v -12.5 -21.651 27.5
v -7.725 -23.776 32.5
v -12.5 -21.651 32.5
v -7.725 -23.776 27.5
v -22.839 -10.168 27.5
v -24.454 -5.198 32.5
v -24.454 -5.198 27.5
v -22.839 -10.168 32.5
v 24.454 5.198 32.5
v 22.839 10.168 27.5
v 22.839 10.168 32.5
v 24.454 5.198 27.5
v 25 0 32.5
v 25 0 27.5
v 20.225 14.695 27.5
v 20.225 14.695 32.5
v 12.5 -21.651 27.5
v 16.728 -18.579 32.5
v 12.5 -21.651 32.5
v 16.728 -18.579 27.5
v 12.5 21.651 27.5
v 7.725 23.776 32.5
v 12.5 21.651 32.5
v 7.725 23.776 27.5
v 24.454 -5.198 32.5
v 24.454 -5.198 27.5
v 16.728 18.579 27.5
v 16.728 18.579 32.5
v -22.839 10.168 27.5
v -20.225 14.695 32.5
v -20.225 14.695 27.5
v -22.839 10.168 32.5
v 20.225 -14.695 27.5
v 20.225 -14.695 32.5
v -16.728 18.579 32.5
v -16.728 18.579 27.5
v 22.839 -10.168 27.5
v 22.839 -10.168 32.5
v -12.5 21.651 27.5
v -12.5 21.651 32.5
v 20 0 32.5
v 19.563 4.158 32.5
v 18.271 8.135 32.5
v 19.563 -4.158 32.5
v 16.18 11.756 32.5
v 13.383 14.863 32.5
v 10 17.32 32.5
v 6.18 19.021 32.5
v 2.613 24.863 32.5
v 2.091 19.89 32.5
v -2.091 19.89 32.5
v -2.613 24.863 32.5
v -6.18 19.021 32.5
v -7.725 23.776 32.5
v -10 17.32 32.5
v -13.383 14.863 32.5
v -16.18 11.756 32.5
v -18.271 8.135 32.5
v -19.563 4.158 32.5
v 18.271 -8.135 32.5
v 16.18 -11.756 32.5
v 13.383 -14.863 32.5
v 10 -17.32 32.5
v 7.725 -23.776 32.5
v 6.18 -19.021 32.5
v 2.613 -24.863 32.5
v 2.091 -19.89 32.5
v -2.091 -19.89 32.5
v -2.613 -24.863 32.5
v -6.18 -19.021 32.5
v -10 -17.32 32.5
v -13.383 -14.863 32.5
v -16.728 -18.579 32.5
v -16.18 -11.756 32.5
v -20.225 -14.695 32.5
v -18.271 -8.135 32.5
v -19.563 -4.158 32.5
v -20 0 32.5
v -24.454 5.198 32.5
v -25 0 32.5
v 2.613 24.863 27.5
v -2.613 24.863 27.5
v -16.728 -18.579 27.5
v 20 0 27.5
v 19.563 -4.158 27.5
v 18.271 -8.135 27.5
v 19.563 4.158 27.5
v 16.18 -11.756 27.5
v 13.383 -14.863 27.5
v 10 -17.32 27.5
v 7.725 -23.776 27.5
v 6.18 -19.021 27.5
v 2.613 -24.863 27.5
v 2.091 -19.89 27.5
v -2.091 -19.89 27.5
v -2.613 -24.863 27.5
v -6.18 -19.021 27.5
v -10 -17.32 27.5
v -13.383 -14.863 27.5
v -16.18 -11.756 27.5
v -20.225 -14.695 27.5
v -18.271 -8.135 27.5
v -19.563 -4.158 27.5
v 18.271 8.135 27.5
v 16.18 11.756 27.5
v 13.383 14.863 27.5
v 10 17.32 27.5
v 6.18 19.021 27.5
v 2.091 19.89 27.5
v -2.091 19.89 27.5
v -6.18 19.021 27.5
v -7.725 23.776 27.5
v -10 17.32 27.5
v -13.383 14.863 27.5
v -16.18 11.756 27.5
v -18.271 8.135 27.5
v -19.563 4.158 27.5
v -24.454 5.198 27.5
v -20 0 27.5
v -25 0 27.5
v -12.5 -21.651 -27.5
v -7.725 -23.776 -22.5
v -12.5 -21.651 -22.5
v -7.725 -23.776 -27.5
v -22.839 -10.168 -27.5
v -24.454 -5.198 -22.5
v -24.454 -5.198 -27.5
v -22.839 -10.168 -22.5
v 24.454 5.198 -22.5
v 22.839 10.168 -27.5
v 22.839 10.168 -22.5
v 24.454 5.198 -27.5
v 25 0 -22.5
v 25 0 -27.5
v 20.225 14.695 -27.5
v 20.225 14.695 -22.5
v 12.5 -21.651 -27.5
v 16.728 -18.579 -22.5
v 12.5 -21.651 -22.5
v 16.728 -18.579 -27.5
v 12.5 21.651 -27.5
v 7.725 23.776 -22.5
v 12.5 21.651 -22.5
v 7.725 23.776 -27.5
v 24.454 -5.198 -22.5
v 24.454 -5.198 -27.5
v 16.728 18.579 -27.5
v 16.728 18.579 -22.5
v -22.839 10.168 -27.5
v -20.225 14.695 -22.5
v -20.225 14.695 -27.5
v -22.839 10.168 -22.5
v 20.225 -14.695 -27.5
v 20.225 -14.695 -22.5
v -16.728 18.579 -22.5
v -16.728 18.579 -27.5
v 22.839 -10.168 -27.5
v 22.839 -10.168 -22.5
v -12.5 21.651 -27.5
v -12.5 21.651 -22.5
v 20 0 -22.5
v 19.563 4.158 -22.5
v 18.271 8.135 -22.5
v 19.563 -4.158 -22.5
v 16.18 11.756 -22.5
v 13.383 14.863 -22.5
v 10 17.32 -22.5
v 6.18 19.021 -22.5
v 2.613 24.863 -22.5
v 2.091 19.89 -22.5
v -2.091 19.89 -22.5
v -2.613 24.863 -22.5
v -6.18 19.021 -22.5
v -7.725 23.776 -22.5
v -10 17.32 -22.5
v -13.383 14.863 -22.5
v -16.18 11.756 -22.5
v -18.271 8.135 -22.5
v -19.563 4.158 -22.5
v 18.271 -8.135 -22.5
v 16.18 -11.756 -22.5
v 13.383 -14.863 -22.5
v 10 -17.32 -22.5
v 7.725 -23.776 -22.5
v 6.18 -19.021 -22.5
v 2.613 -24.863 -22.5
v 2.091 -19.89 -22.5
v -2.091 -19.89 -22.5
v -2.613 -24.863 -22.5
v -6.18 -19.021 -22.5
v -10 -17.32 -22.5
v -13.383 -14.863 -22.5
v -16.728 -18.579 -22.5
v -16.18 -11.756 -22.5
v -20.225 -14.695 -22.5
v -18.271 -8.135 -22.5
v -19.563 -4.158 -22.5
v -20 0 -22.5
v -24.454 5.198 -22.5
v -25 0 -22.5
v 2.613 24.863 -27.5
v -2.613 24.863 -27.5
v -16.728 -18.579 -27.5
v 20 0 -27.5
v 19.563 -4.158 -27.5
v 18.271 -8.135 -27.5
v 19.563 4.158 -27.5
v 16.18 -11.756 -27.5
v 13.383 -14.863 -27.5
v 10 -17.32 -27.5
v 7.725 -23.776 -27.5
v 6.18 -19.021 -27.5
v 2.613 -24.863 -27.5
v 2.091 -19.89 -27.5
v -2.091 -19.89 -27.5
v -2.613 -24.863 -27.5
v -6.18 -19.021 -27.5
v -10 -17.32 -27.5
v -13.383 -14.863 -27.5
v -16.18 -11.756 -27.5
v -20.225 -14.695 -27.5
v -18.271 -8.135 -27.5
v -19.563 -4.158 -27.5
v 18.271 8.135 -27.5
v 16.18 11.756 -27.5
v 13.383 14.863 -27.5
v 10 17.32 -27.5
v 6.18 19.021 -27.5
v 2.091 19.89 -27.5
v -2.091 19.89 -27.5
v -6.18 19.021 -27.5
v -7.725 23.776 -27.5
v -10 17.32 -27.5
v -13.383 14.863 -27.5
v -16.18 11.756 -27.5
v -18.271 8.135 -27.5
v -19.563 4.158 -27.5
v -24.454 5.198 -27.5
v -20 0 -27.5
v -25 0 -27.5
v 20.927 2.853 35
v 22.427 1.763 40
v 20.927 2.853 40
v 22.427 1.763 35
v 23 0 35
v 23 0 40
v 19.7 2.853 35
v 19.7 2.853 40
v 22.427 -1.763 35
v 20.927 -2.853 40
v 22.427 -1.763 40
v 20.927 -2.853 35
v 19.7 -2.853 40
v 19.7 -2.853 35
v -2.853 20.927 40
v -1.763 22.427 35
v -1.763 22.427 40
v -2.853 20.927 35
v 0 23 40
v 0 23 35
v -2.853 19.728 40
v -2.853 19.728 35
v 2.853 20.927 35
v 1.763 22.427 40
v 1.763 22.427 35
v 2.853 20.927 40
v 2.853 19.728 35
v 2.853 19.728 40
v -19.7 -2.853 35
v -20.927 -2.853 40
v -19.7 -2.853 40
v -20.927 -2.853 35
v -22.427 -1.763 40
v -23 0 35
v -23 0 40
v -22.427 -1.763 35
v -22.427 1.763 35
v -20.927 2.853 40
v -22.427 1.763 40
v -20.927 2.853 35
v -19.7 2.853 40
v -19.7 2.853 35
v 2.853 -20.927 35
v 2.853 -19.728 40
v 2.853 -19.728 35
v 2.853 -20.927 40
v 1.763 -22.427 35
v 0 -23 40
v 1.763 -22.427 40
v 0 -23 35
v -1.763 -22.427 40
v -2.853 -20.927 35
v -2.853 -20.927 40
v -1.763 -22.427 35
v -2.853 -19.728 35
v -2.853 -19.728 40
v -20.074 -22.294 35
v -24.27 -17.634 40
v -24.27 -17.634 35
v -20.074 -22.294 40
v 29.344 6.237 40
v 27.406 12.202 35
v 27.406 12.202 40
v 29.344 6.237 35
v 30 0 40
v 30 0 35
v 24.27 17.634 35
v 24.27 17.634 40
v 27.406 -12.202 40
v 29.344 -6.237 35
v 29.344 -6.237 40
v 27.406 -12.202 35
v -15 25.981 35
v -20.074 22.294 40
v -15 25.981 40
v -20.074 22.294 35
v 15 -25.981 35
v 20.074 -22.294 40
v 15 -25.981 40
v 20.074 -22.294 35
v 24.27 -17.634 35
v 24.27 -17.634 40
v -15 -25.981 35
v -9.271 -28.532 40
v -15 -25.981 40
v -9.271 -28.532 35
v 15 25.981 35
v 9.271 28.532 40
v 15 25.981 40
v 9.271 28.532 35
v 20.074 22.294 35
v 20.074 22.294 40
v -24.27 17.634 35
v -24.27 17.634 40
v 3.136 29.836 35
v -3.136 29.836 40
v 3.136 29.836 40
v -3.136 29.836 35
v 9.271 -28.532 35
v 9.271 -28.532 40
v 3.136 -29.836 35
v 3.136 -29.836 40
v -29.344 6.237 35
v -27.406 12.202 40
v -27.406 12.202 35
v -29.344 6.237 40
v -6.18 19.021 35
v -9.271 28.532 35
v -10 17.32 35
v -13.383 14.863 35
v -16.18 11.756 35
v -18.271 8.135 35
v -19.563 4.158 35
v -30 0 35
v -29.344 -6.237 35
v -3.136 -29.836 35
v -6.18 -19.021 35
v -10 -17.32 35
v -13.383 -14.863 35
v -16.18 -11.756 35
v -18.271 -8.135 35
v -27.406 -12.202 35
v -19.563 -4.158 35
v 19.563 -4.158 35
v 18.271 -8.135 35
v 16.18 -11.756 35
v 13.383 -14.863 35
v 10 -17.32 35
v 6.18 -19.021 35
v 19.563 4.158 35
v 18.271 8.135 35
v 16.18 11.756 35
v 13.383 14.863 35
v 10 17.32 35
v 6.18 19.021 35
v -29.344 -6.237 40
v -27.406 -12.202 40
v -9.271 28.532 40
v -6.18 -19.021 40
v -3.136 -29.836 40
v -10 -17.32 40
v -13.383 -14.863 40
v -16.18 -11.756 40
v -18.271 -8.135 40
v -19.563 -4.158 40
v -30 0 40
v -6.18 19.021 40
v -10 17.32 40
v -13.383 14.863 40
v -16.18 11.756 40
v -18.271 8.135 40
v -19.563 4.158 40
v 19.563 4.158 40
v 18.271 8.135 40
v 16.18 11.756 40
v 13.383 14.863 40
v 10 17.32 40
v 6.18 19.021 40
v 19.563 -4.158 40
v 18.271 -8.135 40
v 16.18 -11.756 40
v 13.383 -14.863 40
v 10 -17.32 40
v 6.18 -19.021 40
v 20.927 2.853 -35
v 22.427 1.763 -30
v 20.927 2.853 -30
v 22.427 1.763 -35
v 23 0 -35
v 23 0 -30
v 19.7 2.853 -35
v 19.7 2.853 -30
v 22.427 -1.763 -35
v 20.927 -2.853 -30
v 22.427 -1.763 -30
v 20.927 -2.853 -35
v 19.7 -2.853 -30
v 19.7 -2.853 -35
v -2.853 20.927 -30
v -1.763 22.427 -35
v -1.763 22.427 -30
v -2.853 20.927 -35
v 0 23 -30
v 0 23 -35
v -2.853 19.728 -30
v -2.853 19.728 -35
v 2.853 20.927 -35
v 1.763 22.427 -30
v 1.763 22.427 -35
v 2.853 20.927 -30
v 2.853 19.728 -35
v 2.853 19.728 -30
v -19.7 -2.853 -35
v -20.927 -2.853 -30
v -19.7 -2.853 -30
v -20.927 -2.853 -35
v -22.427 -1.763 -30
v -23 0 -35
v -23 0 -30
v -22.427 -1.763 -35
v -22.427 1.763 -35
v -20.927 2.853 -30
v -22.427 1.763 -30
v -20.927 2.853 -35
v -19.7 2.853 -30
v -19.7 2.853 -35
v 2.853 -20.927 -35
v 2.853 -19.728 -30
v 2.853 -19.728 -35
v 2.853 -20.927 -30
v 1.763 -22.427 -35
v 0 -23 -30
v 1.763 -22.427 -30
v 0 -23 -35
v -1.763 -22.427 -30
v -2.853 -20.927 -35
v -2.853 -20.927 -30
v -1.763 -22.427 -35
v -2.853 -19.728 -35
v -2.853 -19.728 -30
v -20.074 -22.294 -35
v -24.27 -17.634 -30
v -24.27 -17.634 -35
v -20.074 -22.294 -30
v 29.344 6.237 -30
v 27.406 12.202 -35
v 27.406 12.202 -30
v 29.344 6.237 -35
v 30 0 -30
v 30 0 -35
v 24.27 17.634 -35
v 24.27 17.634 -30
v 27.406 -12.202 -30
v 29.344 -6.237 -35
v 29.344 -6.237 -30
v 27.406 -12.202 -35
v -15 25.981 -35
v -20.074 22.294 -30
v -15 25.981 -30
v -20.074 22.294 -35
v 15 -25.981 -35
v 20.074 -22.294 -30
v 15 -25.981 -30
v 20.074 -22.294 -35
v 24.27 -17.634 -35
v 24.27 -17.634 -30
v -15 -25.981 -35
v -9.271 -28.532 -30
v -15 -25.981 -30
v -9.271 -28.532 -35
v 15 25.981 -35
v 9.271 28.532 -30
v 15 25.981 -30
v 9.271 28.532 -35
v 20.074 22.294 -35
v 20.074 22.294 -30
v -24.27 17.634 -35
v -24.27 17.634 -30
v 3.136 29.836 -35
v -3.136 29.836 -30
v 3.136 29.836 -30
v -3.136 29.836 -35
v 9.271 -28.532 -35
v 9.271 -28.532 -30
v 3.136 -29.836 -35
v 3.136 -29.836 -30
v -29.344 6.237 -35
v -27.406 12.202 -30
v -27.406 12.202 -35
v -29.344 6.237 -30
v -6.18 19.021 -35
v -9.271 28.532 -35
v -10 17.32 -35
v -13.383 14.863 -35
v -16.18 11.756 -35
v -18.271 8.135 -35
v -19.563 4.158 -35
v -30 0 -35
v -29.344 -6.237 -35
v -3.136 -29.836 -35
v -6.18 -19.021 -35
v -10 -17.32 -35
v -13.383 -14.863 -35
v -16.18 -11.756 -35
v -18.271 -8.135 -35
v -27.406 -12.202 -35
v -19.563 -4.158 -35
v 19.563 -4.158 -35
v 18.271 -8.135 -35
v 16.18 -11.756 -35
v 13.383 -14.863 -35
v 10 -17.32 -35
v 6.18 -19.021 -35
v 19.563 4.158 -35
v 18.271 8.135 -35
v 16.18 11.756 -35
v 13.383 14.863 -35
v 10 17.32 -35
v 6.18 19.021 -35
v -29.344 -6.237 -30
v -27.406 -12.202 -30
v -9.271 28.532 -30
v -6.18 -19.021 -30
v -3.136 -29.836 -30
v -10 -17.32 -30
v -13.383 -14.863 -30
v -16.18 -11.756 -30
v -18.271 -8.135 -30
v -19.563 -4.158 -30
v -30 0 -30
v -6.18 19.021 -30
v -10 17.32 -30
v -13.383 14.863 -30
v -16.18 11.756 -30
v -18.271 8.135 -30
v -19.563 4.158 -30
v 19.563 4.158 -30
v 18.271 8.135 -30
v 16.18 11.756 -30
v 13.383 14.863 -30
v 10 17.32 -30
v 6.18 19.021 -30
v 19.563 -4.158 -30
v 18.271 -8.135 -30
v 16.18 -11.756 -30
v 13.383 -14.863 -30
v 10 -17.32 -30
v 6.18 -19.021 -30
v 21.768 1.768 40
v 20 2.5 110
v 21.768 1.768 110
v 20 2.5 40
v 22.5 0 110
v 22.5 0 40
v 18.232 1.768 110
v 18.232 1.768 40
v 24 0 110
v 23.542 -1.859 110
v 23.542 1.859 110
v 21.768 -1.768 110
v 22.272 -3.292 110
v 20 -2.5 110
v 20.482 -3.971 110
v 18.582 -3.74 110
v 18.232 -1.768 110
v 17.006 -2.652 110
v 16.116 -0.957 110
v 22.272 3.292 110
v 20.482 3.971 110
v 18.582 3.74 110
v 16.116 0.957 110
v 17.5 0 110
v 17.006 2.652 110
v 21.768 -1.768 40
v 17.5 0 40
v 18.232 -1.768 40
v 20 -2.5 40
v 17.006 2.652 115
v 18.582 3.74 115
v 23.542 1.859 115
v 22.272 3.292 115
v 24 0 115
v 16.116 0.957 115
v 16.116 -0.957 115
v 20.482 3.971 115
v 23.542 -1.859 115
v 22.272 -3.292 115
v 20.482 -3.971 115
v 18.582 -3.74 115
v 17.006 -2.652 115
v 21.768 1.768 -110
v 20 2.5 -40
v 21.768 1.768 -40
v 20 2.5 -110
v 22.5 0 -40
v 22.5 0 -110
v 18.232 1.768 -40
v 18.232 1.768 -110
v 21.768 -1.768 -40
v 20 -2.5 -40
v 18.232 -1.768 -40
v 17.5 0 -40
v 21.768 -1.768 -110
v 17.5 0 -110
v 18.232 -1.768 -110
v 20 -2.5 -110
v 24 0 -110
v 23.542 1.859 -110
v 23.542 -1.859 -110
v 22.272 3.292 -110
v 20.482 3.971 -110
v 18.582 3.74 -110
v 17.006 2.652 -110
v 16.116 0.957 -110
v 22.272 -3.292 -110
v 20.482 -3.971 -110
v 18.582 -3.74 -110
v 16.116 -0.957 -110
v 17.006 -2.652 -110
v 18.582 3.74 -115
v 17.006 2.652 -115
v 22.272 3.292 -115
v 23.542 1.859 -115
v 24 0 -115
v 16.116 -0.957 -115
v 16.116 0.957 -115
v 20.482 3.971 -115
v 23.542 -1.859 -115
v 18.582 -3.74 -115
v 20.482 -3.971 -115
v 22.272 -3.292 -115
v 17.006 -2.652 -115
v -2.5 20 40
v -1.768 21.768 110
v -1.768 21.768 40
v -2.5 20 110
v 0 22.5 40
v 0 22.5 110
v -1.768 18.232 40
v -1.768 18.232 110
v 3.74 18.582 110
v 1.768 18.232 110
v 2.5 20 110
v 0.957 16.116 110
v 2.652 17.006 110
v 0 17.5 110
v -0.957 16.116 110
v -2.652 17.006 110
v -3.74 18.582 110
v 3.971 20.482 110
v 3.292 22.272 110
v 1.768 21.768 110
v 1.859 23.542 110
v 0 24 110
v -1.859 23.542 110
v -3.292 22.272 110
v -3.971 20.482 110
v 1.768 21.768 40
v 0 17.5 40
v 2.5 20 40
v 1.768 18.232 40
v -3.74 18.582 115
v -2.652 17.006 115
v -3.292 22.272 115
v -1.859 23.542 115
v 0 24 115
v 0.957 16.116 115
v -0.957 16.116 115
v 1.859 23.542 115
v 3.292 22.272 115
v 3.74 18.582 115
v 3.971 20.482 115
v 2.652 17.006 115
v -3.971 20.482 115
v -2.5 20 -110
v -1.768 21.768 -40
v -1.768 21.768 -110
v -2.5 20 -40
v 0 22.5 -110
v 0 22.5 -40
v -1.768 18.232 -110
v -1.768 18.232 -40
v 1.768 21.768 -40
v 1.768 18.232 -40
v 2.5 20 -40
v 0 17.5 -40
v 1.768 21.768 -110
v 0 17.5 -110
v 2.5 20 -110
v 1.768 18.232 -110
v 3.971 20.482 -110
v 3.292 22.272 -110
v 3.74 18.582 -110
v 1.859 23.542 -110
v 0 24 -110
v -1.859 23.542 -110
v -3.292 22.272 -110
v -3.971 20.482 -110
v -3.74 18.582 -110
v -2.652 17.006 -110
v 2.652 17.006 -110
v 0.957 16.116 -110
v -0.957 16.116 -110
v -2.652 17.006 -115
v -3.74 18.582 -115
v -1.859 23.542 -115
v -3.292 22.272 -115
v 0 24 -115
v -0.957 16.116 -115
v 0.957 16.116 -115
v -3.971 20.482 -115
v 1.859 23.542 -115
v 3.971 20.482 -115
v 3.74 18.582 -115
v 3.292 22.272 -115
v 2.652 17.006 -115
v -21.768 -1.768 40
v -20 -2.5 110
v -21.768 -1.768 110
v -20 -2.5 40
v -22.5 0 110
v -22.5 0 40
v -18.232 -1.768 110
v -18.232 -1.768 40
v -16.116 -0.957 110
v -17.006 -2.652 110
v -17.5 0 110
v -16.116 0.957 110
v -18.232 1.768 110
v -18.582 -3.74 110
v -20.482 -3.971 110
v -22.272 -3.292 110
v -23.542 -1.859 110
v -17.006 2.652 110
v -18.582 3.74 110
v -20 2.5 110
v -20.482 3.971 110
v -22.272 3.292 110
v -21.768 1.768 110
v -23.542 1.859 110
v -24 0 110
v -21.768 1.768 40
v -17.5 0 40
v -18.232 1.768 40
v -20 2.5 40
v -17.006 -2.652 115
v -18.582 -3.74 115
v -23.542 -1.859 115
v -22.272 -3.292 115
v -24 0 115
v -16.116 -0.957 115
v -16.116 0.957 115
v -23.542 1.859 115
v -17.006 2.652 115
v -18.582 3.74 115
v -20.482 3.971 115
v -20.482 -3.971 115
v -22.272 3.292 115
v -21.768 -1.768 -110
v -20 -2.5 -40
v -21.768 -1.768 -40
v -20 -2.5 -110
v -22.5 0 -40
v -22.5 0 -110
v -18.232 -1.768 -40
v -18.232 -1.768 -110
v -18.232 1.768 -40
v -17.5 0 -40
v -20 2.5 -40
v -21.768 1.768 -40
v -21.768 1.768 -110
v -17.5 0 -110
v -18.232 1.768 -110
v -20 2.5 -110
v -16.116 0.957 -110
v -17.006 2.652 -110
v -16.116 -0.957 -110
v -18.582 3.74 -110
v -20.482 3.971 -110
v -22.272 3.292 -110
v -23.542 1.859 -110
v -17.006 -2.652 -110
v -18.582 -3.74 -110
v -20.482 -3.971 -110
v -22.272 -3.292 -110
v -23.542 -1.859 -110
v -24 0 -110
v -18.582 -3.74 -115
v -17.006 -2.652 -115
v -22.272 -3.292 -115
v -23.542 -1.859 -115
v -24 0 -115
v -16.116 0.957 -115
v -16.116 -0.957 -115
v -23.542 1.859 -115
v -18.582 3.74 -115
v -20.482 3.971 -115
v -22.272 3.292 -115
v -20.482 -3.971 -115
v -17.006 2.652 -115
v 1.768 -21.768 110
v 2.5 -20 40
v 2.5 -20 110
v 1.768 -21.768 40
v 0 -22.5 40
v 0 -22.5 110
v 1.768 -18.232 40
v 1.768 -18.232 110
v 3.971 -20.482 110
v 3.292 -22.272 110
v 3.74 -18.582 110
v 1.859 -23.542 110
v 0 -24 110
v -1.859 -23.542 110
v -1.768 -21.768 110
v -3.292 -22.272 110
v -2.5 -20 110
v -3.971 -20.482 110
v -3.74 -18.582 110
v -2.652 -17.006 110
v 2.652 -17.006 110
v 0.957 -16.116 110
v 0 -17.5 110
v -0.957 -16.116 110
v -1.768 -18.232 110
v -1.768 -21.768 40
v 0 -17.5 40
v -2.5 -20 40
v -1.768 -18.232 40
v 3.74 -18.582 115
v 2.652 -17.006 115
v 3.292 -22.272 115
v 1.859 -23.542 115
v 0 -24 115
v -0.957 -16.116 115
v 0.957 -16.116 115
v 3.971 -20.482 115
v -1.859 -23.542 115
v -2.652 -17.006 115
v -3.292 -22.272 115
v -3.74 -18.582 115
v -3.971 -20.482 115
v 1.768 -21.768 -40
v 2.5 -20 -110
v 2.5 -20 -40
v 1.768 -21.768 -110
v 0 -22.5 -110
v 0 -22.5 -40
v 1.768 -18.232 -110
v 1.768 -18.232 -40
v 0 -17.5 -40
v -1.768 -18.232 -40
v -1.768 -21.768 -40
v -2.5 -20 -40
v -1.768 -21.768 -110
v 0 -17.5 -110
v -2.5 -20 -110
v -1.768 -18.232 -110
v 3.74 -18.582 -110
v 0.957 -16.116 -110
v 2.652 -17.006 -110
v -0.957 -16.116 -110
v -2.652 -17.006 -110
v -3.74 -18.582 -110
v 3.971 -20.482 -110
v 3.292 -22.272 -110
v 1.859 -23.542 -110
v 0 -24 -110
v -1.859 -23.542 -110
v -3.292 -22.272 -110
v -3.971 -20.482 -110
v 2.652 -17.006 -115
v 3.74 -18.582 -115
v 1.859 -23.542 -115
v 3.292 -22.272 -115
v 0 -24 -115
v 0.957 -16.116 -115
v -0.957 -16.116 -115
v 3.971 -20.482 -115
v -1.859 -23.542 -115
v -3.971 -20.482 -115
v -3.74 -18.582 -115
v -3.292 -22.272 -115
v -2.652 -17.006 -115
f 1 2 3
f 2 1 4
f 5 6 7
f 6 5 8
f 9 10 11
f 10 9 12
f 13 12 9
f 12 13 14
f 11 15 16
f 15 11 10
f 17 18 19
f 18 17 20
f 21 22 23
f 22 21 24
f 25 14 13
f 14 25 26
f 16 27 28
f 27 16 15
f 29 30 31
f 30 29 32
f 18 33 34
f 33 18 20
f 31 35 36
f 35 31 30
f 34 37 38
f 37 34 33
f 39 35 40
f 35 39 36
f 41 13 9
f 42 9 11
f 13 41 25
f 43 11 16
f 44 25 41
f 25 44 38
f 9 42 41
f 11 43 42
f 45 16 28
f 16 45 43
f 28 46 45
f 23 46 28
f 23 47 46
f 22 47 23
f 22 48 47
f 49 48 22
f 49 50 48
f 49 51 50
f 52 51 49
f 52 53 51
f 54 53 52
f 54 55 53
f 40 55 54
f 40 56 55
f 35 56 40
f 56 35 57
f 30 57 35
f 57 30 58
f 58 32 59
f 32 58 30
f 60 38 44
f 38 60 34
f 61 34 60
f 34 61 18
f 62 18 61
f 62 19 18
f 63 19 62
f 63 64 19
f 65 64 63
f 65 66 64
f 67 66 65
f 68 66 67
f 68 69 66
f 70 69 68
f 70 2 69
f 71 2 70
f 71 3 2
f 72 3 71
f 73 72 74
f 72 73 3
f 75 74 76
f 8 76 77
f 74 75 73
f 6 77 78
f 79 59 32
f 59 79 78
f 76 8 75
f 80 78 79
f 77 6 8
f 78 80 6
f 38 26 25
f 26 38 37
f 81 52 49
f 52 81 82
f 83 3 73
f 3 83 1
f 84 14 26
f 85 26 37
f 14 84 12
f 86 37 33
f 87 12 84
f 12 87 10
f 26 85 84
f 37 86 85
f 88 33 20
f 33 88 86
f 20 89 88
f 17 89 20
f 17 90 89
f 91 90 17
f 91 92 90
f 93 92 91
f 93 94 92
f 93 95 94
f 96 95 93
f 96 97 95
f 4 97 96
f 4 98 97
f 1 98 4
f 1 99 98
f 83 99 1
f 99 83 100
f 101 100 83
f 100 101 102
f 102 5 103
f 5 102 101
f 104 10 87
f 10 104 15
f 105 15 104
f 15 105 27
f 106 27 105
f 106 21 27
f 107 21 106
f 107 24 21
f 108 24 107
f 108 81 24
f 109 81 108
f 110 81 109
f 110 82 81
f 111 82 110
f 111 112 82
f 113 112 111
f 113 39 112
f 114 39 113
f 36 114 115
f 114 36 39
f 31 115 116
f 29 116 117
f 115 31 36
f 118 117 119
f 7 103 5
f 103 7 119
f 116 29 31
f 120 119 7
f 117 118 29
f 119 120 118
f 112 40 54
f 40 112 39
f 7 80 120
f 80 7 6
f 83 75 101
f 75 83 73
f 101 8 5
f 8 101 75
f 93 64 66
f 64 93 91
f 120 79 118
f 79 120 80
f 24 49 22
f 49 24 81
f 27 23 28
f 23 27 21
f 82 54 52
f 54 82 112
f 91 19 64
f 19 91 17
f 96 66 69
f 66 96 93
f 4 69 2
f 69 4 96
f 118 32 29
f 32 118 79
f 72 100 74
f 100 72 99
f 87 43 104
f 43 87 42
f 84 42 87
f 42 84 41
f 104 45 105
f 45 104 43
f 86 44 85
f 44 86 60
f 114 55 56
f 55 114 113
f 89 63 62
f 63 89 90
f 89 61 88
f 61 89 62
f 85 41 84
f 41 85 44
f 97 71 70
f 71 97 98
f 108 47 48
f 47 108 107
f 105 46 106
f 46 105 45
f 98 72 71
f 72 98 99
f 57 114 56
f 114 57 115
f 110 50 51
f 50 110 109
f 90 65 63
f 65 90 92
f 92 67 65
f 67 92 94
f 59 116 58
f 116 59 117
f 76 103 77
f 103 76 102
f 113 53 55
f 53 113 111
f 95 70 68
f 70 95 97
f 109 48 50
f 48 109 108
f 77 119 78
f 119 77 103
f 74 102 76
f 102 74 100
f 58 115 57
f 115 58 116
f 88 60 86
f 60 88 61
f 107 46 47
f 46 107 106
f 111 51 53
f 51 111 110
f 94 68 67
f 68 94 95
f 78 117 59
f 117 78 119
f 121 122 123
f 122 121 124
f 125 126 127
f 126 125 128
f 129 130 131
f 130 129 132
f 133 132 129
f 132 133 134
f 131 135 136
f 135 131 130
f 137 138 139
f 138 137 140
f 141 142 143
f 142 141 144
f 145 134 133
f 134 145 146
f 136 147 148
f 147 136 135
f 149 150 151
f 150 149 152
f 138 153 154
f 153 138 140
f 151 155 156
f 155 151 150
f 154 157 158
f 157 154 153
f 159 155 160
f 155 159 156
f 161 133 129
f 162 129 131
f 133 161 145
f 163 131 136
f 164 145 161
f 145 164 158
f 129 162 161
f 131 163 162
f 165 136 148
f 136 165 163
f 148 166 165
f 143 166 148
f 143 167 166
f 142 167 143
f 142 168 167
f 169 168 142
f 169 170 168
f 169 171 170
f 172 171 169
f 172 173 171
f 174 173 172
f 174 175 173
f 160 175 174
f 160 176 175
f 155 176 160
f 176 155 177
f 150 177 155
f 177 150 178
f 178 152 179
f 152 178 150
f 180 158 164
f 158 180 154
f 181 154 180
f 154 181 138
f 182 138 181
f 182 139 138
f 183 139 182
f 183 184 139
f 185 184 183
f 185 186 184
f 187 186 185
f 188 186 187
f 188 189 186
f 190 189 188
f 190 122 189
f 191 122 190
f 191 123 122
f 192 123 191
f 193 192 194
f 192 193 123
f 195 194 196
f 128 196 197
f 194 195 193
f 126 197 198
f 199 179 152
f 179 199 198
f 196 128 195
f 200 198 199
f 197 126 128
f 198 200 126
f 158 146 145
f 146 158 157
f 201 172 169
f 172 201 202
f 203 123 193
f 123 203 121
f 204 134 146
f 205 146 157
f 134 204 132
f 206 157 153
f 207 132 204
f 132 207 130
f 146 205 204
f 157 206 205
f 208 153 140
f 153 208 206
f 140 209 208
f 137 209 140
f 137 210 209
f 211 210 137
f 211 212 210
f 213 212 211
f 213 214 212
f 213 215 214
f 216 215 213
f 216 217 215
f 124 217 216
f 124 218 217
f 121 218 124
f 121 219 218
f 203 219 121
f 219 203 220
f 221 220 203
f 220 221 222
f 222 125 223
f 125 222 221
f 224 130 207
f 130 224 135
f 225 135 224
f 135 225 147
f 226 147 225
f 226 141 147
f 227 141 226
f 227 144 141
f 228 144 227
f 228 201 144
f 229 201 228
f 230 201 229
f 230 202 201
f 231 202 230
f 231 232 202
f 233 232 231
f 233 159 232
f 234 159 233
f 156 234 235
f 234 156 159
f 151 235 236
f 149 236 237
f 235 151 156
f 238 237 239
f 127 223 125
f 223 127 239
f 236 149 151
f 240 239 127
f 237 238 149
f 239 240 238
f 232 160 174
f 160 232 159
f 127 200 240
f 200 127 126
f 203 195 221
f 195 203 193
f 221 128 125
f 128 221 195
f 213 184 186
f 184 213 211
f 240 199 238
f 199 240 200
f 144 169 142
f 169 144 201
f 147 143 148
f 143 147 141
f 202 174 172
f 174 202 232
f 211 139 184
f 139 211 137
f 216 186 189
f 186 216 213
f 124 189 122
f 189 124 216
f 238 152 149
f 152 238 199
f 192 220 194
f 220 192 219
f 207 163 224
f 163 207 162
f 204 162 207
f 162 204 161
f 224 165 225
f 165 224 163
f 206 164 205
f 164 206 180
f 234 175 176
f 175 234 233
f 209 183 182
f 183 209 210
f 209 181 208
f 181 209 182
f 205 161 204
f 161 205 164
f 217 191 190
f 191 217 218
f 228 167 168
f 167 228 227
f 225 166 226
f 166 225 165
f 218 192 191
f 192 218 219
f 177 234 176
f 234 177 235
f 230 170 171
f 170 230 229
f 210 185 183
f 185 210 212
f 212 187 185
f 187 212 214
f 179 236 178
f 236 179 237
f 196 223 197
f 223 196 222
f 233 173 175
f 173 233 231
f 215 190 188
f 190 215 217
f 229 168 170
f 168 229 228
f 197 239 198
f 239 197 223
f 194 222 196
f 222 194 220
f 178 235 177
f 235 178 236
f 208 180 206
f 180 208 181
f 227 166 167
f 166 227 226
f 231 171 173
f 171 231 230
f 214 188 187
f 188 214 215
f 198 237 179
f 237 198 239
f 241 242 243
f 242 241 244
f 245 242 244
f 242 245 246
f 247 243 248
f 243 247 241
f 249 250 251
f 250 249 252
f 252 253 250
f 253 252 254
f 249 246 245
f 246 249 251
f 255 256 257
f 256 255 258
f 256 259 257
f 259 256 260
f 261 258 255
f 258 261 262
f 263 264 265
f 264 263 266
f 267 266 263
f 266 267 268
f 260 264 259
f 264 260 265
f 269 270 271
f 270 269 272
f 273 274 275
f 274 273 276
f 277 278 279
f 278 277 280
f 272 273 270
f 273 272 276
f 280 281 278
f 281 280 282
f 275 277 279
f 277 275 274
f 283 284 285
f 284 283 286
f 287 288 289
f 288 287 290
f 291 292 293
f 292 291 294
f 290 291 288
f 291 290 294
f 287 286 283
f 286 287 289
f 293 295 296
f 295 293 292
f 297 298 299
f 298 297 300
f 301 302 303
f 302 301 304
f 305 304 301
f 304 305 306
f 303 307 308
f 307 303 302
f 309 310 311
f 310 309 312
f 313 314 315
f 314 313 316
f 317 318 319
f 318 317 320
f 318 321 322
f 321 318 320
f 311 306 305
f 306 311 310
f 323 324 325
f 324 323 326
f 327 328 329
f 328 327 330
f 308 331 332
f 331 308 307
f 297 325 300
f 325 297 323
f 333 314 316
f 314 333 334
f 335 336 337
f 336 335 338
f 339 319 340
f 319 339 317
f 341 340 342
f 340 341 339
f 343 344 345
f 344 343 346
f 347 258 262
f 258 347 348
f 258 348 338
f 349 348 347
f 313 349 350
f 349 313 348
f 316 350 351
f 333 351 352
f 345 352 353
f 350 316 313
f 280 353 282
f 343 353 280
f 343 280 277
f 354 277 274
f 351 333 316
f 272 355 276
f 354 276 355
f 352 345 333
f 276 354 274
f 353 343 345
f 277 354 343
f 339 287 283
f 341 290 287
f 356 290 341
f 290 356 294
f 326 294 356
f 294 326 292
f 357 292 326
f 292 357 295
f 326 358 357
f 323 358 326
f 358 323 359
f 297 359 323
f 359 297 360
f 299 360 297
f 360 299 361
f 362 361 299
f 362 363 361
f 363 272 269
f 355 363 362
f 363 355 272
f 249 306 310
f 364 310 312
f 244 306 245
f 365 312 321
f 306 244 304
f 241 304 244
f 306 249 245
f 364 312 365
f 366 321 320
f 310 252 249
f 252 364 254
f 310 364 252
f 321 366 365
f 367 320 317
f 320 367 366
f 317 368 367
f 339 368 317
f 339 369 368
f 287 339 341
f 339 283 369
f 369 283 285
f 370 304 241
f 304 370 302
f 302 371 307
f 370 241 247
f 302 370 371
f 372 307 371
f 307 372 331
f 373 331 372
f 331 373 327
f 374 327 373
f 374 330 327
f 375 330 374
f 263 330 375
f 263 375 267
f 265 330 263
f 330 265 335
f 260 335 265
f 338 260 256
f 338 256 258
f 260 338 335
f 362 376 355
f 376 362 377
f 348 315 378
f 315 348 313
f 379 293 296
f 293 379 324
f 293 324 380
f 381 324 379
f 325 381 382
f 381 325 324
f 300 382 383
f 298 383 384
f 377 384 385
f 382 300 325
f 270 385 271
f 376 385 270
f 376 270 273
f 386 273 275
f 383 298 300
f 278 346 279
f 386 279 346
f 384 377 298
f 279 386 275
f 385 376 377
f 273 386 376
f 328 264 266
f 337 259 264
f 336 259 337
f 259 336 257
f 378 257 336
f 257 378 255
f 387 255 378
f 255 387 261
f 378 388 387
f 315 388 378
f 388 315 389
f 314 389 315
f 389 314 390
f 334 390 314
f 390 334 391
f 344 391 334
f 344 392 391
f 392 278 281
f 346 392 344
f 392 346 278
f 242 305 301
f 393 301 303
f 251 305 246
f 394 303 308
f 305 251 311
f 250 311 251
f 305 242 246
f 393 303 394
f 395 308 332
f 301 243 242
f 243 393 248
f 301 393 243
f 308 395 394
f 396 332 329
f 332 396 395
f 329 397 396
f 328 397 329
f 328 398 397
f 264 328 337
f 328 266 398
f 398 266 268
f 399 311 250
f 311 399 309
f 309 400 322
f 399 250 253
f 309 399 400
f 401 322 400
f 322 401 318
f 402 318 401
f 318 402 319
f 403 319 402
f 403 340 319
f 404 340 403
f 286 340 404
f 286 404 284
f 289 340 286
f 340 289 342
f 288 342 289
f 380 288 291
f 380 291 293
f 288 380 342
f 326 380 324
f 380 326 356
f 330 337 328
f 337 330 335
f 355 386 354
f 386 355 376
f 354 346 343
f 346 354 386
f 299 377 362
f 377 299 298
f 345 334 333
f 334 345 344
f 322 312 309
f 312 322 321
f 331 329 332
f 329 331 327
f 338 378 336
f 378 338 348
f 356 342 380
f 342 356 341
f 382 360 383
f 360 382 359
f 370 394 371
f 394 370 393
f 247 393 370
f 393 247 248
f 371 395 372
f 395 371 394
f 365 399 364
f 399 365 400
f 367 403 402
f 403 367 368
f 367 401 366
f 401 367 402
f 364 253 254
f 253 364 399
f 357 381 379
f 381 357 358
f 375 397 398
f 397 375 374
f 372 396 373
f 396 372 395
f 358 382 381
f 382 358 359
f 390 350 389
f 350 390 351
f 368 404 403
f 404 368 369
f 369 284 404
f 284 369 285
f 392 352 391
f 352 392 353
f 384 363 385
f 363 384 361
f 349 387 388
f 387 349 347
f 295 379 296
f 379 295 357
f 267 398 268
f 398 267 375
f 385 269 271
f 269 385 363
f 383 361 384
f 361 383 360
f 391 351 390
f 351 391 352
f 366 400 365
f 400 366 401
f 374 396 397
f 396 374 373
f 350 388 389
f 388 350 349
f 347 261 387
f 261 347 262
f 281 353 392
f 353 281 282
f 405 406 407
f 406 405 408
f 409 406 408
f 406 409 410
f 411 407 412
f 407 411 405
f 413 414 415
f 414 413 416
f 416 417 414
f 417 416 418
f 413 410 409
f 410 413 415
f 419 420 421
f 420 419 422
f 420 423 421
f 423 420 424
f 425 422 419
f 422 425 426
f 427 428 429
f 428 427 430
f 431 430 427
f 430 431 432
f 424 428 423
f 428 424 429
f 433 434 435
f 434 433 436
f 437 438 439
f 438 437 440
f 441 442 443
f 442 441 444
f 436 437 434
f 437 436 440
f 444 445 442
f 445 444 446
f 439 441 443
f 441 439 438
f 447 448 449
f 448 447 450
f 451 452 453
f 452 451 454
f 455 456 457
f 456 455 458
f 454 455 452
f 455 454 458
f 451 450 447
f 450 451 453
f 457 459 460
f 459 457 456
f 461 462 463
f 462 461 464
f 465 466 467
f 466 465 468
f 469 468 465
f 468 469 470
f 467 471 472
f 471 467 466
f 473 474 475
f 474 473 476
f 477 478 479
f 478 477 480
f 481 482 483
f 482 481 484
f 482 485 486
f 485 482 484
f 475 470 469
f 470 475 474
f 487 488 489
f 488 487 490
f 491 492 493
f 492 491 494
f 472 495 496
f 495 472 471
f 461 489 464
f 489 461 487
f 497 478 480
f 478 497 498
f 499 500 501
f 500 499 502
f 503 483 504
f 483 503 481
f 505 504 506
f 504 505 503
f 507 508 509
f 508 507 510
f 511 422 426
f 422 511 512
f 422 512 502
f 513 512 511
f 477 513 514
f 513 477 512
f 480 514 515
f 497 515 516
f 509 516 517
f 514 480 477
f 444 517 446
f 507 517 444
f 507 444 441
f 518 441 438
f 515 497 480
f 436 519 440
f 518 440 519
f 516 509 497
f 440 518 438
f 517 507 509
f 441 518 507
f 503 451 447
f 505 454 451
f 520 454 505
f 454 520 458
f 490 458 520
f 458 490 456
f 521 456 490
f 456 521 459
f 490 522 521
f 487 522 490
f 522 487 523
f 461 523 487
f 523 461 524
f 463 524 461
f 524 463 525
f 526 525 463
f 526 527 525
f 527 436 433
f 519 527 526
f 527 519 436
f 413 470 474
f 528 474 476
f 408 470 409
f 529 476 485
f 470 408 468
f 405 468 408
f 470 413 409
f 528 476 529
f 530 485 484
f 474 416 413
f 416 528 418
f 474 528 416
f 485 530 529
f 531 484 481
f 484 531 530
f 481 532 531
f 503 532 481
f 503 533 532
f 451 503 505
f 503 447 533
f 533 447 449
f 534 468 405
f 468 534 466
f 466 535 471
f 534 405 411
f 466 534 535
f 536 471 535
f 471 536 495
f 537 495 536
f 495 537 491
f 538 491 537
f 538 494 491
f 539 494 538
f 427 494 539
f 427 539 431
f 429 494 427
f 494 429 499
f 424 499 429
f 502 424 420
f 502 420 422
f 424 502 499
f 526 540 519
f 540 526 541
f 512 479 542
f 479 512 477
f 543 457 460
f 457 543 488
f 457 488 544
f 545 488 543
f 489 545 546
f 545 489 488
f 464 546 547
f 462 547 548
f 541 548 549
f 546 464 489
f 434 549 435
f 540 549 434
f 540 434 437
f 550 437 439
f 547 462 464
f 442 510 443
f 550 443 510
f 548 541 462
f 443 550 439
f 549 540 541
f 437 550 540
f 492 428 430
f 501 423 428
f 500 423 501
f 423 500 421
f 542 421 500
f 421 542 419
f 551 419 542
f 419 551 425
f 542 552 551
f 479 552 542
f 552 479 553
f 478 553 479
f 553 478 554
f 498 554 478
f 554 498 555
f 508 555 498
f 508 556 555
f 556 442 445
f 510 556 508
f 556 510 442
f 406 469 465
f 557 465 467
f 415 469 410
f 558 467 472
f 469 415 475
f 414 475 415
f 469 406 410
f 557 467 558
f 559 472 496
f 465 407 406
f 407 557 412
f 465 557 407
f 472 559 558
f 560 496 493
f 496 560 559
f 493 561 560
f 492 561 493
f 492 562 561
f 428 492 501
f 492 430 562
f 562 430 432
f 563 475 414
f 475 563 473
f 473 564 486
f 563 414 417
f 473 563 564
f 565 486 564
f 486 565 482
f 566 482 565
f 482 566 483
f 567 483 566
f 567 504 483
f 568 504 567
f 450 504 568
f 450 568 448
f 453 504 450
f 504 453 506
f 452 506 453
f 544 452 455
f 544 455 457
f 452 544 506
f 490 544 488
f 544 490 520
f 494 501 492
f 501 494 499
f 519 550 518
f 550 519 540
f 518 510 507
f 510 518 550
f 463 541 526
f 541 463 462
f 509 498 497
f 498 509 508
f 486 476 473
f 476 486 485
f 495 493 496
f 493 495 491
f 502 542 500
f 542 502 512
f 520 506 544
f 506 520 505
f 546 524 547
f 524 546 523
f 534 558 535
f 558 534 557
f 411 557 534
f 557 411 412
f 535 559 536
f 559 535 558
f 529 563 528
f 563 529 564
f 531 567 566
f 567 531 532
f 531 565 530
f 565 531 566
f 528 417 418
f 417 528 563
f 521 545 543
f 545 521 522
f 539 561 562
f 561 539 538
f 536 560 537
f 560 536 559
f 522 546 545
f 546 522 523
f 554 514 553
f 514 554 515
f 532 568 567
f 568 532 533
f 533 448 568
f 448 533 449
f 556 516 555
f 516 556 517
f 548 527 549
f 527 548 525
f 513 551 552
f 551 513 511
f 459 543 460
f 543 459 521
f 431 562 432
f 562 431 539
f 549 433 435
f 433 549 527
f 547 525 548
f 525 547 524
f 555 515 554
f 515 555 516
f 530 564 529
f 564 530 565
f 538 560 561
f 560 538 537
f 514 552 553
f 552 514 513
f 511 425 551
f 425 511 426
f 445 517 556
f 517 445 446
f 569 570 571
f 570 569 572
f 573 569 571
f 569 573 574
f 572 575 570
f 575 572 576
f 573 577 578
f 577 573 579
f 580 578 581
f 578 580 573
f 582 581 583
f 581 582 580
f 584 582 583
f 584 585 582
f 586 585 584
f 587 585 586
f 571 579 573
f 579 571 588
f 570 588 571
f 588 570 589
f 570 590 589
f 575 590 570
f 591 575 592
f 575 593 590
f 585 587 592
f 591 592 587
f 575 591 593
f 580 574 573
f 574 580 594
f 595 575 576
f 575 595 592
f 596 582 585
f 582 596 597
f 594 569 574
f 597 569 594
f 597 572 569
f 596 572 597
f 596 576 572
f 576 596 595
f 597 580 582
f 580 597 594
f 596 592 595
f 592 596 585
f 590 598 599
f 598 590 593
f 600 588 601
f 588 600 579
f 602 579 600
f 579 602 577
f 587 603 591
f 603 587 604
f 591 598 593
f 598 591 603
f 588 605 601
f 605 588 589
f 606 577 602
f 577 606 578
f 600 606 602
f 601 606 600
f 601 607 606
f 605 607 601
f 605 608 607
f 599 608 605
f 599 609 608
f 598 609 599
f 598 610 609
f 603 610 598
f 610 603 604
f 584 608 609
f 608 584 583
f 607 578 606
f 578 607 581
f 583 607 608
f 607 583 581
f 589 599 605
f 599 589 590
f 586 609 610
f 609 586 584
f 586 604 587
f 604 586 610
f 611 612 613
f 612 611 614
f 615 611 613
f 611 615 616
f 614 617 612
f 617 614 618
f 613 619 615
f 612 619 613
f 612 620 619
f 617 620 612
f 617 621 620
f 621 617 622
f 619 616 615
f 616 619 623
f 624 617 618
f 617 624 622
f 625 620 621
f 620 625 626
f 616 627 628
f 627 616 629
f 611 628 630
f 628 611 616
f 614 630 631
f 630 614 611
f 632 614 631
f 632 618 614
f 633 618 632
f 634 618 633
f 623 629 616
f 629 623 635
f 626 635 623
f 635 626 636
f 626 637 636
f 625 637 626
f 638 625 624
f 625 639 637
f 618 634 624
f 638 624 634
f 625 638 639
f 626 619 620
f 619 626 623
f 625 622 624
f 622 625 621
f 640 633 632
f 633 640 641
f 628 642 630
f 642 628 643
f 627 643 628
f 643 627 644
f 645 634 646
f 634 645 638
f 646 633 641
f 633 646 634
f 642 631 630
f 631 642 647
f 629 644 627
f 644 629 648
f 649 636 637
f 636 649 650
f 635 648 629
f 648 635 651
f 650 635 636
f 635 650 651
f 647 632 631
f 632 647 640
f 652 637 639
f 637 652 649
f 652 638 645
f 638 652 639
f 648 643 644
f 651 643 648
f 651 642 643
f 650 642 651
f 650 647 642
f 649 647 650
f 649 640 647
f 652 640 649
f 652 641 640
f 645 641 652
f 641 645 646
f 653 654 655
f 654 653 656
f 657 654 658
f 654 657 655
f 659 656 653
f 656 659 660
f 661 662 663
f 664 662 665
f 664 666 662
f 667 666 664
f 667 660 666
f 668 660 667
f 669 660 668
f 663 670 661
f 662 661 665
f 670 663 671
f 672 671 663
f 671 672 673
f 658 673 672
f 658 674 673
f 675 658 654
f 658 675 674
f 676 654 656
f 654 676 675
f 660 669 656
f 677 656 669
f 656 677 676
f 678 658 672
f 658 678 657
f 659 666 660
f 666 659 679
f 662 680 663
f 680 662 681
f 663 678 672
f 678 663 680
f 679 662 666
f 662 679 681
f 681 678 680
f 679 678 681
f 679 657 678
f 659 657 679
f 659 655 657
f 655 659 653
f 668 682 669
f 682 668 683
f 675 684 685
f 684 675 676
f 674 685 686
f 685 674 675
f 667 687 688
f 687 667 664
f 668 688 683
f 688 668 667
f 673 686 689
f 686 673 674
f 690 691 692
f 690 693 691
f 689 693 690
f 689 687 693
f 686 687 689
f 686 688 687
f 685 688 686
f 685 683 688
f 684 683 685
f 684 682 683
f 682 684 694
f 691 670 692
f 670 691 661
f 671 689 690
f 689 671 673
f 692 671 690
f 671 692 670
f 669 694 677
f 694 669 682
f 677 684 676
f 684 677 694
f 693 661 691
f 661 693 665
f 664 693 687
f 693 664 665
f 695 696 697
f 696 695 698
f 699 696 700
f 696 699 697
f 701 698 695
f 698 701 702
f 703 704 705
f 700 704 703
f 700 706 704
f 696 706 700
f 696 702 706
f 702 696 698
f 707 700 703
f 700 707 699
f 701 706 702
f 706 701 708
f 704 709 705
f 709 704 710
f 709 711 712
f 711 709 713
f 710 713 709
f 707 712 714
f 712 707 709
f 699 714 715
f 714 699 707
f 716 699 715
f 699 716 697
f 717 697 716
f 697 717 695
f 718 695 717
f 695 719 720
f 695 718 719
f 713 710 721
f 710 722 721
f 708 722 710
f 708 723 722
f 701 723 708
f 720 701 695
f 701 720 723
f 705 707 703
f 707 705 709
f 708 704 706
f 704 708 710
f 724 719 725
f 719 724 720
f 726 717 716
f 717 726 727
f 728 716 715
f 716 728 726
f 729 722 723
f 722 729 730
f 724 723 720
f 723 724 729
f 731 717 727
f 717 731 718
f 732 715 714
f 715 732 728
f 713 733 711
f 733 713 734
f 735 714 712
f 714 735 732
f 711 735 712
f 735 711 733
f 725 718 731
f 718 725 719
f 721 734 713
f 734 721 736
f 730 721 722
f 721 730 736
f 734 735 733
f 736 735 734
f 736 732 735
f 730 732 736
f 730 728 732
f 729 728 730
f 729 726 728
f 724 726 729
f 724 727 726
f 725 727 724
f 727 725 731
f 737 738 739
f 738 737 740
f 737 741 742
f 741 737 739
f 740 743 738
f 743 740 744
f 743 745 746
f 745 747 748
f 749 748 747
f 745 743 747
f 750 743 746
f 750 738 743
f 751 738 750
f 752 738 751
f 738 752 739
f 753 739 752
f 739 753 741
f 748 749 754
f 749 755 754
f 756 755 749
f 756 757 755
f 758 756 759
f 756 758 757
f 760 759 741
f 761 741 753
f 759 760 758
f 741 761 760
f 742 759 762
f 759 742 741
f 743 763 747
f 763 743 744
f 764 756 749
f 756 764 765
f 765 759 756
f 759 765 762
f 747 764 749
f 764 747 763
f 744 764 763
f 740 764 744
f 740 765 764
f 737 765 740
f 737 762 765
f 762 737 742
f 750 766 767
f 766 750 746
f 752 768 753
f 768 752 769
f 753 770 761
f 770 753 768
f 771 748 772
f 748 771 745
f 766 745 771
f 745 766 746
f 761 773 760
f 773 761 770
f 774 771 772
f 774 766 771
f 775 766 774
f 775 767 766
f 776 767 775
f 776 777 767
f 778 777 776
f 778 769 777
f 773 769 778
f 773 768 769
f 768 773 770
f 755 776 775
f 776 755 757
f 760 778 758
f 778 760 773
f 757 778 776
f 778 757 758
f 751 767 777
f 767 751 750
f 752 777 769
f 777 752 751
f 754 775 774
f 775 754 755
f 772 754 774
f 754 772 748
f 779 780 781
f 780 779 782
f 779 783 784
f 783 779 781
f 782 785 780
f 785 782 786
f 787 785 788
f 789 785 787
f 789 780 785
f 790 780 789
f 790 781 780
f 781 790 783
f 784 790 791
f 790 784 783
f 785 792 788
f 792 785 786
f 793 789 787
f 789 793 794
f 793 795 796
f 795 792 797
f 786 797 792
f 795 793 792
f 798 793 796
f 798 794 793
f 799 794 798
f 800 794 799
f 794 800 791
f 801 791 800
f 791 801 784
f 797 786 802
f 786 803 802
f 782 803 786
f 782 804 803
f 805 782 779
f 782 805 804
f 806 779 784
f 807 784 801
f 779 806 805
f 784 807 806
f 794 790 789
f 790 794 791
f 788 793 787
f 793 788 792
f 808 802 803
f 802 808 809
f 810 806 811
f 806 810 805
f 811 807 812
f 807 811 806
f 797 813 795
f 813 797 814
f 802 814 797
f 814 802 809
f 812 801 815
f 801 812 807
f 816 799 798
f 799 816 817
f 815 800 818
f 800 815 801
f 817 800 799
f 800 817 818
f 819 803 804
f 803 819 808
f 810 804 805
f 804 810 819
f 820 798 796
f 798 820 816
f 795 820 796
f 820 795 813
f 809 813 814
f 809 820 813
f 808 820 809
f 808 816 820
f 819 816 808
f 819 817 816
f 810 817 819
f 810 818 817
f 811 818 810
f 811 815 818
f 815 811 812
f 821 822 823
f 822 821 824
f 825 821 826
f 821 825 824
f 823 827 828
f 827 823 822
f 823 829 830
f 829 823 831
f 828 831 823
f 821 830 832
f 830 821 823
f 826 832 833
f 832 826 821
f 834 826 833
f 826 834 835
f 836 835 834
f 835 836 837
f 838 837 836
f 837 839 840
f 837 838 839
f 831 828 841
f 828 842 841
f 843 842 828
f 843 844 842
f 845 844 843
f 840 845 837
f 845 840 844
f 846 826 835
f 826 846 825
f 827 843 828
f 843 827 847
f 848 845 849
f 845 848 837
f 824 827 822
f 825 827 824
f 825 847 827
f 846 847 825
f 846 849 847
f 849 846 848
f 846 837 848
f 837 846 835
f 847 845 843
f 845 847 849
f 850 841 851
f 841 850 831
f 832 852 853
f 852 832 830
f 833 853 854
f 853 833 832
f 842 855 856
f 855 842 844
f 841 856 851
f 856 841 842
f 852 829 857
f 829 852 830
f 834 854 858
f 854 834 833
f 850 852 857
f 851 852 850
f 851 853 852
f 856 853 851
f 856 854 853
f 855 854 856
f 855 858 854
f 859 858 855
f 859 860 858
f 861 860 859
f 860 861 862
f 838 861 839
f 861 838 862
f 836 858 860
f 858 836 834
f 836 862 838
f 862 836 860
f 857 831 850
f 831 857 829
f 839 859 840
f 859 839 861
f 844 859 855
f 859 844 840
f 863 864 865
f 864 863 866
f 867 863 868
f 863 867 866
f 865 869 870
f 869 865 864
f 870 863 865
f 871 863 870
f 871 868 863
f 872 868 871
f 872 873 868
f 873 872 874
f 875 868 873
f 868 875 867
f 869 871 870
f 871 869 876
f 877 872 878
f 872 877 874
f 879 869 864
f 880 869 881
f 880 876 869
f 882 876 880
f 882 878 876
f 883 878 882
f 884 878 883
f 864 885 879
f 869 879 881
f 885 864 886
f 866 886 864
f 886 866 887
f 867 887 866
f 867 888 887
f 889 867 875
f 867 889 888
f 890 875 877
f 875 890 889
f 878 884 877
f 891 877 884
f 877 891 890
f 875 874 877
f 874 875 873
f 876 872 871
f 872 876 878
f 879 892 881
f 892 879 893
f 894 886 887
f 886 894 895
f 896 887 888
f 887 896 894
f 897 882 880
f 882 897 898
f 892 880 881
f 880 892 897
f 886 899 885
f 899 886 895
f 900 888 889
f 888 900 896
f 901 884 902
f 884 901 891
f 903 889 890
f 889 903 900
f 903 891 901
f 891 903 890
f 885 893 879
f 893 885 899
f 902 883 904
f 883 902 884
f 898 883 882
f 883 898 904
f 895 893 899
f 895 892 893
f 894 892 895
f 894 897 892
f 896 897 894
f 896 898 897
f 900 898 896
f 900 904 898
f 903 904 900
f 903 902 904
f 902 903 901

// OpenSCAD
// Parameters
central_cylinder_diameter = 40; // Diameter of the central cylinder
central_cylinder_length = 60;  // Length of the central cylinder
spacer_ring_outer_diameter = 50; // Outer diameter of the spacer ring
spacer_ring_inner_diameter = 40; // Inner diameter of the spacer ring
spacer_ring_thickness = 5;      // Thickness of the spacer ring
flange_plate_outer_diameter = 60; // Outer diameter of the flange plate
flange_plate_inner_diameter = 40; // Inner diameter of the flange plate
flange_plate_thickness = 5;      // Thickness of the flange plate
bolt_diameter = 5;               // Diameter of the bolt
bolt_length = 70;                // Length of the bolt
nut_diameter = 8;                // Diameter of the nut
nut_thickness = 5;               // Thickness of the nut
bolt_hole_radius = 3;            // Radius of the bolt holes
bolt_hole_spacing = 20;          // Distance from the center to the bolt holes

// Central Cylinder
module central_cylinder() {
    difference() {
        cylinder(h = central_cylinder_length, d = central_cylinder_diameter);
        translate([0, 0, -1])
            cylinder(h = central_cylinder_length + 2, d = spacer_ring_inner_diameter);
    }
}

// Spacer Ring
module spacer_ring() {
    difference() {
        cylinder(h = spacer_ring_thickness, d = spacer_ring_outer_diameter);
        translate([0, 0, -1])
            cylinder(h = spacer_ring_thickness + 2, d = spacer_ring_inner_diameter);
    }
}

// Flange Plate
module flange_plate() {
    difference() {
        cylinder(h = flange_plate_thickness, d = flange_plate_outer_diameter);
        translate([0, 0, -1])
            cylinder(h = flange_plate_thickness + 2, d = flange_plate_inner_diameter);
        for (i = [0:3]) {
            rotate([0, 0, i * 90])
                translate([bolt_hole_spacing, 0, -1])
                    cylinder(h = flange_plate_thickness + 2, r = bolt_hole_radius);
        }
    }
}

// Bolt
module bolt() {
    cylinder(h = bolt_length, d = bolt_diameter);
}

// Nut
module nut() {
    cylinder(h = nut_thickness, d = nut_diameter);
}

// Assembly
module flexible_coupling() {
    // Central Cylinder
    central_cylinder();

    // Spacer Rings
    translate([0, 0, central_cylinder_length / 2 - spacer_ring_thickness / 2])
        spacer_ring();
    translate([0, 0, -central_cylinder_length / 2 + spacer_ring_thickness / 2])
        spacer_ring();

    // Flange Plates
    translate([0, 0, central_cylinder_length / 2 + spacer_ring_thickness])
        flange_plate();
    translate([0, 0, -central_cylinder_length / 2 - spacer_ring_thickness])
        flange_plate();

    // Bolts and Nuts
    for (i = [0:3]) {
        rotate([0, 0, i * 90]) {
            translate([bolt_hole_spacing, 0, central_cylinder_length / 2 + spacer_ring_thickness + flange_plate_thickness])
                bolt();
            translate([bolt_hole_spacing, 0, central_cylinder_length / 2 + spacer_ring_thickness + flange_plate_thickness + bolt_length])
                nut();
            translate([bolt_hole_spacing, 0, -central_cylinder_length / 2 - spacer_ring_thickness - flange_plate_thickness - bolt_length])
                bolt();
            translate([bolt_hole_spacing, 0, -central_cylinder_length / 2 - spacer_ring_thickness - flange_plate_thickness - bolt_length - nut_thickness])
                nut();
        }
    }
}

// Render the flexible coupling
flexible_coupling();
